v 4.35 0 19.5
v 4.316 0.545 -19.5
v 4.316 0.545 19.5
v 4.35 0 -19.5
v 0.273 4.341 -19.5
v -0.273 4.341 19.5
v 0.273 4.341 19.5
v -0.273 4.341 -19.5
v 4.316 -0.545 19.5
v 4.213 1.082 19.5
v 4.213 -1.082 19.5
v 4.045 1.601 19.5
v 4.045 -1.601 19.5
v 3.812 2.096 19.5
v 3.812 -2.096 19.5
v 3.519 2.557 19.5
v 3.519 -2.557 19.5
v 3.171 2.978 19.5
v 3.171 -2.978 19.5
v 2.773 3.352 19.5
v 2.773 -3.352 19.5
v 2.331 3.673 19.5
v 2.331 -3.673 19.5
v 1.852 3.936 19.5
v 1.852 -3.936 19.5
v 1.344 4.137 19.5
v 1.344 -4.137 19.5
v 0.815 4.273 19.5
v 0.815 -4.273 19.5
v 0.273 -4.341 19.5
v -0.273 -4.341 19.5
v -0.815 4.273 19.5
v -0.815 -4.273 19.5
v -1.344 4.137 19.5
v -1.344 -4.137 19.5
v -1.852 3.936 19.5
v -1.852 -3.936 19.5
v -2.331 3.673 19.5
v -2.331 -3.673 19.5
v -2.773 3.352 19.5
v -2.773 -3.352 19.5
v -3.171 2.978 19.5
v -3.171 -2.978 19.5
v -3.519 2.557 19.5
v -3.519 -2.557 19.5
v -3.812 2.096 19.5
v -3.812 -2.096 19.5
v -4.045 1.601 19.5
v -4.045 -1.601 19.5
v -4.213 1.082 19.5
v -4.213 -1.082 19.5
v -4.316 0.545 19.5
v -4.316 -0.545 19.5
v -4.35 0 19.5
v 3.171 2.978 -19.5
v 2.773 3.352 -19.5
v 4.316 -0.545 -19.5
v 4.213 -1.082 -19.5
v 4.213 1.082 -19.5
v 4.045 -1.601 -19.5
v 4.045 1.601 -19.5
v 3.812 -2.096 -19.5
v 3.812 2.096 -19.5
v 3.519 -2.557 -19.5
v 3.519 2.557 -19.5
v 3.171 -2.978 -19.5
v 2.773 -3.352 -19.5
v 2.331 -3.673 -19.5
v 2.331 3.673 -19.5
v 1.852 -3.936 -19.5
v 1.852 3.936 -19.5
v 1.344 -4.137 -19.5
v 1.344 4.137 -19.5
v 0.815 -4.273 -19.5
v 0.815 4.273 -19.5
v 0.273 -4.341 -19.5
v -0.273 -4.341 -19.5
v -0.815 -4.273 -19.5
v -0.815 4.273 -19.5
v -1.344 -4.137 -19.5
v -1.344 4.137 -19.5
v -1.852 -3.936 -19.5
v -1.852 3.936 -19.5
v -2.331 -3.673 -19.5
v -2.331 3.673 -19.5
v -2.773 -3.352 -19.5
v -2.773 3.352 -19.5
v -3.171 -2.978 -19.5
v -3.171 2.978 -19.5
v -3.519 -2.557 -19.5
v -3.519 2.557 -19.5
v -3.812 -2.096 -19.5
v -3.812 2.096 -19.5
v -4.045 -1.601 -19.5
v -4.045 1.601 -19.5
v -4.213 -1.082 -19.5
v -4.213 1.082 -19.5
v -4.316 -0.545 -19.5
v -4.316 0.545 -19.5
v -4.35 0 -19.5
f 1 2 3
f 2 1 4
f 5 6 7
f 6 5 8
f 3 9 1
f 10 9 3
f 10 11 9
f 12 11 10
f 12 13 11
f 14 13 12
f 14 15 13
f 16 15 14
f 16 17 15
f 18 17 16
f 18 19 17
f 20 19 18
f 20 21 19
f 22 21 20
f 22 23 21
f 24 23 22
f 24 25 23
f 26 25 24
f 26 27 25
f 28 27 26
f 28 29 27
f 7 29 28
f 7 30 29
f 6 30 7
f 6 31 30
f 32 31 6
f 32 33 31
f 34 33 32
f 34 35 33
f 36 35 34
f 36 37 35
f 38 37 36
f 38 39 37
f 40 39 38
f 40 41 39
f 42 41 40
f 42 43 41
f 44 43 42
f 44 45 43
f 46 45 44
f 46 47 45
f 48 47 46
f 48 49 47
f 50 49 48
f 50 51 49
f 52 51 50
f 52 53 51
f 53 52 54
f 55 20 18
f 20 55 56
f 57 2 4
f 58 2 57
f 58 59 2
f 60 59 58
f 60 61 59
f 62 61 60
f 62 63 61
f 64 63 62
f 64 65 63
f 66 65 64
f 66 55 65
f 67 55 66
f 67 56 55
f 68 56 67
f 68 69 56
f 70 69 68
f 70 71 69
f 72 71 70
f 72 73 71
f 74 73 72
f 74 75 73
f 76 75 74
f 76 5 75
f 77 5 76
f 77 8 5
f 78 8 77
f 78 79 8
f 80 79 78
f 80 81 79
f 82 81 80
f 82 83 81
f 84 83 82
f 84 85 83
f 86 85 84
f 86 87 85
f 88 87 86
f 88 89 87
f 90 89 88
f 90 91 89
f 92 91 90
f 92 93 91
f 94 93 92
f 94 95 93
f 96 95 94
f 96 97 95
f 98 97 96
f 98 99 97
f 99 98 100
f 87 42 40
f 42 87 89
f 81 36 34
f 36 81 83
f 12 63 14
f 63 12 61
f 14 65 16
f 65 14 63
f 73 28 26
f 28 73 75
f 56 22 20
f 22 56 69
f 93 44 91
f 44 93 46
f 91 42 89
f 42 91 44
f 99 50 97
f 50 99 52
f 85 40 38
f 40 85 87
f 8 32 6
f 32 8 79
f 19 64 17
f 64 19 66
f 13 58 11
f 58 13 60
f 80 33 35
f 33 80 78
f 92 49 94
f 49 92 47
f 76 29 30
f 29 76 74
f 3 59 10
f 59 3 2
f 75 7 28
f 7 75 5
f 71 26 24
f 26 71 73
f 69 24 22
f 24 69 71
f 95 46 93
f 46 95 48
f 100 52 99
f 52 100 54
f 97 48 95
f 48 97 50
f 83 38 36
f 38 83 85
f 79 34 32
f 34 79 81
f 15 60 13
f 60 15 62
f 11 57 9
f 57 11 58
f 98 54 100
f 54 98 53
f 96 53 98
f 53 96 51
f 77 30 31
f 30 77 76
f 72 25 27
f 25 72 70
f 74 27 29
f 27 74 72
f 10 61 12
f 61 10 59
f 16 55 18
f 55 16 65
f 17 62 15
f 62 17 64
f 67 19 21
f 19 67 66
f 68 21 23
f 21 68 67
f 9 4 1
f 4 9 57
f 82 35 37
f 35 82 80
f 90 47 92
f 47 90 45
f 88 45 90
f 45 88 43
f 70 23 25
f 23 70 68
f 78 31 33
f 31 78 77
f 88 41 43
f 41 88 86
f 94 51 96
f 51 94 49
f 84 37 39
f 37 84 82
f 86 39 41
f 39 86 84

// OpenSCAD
$fn = 50;


difference() {
	union() {
		translate(v = [0, 0, -19.5000000000]) {
			cylinder(h = 39, r = 4.3500000000);
		}
	}
	union() {
		translate(v = [0, 0, -100.0000000000]) {
			cylinder(h = 200, r = 0);
		}
	}
}
